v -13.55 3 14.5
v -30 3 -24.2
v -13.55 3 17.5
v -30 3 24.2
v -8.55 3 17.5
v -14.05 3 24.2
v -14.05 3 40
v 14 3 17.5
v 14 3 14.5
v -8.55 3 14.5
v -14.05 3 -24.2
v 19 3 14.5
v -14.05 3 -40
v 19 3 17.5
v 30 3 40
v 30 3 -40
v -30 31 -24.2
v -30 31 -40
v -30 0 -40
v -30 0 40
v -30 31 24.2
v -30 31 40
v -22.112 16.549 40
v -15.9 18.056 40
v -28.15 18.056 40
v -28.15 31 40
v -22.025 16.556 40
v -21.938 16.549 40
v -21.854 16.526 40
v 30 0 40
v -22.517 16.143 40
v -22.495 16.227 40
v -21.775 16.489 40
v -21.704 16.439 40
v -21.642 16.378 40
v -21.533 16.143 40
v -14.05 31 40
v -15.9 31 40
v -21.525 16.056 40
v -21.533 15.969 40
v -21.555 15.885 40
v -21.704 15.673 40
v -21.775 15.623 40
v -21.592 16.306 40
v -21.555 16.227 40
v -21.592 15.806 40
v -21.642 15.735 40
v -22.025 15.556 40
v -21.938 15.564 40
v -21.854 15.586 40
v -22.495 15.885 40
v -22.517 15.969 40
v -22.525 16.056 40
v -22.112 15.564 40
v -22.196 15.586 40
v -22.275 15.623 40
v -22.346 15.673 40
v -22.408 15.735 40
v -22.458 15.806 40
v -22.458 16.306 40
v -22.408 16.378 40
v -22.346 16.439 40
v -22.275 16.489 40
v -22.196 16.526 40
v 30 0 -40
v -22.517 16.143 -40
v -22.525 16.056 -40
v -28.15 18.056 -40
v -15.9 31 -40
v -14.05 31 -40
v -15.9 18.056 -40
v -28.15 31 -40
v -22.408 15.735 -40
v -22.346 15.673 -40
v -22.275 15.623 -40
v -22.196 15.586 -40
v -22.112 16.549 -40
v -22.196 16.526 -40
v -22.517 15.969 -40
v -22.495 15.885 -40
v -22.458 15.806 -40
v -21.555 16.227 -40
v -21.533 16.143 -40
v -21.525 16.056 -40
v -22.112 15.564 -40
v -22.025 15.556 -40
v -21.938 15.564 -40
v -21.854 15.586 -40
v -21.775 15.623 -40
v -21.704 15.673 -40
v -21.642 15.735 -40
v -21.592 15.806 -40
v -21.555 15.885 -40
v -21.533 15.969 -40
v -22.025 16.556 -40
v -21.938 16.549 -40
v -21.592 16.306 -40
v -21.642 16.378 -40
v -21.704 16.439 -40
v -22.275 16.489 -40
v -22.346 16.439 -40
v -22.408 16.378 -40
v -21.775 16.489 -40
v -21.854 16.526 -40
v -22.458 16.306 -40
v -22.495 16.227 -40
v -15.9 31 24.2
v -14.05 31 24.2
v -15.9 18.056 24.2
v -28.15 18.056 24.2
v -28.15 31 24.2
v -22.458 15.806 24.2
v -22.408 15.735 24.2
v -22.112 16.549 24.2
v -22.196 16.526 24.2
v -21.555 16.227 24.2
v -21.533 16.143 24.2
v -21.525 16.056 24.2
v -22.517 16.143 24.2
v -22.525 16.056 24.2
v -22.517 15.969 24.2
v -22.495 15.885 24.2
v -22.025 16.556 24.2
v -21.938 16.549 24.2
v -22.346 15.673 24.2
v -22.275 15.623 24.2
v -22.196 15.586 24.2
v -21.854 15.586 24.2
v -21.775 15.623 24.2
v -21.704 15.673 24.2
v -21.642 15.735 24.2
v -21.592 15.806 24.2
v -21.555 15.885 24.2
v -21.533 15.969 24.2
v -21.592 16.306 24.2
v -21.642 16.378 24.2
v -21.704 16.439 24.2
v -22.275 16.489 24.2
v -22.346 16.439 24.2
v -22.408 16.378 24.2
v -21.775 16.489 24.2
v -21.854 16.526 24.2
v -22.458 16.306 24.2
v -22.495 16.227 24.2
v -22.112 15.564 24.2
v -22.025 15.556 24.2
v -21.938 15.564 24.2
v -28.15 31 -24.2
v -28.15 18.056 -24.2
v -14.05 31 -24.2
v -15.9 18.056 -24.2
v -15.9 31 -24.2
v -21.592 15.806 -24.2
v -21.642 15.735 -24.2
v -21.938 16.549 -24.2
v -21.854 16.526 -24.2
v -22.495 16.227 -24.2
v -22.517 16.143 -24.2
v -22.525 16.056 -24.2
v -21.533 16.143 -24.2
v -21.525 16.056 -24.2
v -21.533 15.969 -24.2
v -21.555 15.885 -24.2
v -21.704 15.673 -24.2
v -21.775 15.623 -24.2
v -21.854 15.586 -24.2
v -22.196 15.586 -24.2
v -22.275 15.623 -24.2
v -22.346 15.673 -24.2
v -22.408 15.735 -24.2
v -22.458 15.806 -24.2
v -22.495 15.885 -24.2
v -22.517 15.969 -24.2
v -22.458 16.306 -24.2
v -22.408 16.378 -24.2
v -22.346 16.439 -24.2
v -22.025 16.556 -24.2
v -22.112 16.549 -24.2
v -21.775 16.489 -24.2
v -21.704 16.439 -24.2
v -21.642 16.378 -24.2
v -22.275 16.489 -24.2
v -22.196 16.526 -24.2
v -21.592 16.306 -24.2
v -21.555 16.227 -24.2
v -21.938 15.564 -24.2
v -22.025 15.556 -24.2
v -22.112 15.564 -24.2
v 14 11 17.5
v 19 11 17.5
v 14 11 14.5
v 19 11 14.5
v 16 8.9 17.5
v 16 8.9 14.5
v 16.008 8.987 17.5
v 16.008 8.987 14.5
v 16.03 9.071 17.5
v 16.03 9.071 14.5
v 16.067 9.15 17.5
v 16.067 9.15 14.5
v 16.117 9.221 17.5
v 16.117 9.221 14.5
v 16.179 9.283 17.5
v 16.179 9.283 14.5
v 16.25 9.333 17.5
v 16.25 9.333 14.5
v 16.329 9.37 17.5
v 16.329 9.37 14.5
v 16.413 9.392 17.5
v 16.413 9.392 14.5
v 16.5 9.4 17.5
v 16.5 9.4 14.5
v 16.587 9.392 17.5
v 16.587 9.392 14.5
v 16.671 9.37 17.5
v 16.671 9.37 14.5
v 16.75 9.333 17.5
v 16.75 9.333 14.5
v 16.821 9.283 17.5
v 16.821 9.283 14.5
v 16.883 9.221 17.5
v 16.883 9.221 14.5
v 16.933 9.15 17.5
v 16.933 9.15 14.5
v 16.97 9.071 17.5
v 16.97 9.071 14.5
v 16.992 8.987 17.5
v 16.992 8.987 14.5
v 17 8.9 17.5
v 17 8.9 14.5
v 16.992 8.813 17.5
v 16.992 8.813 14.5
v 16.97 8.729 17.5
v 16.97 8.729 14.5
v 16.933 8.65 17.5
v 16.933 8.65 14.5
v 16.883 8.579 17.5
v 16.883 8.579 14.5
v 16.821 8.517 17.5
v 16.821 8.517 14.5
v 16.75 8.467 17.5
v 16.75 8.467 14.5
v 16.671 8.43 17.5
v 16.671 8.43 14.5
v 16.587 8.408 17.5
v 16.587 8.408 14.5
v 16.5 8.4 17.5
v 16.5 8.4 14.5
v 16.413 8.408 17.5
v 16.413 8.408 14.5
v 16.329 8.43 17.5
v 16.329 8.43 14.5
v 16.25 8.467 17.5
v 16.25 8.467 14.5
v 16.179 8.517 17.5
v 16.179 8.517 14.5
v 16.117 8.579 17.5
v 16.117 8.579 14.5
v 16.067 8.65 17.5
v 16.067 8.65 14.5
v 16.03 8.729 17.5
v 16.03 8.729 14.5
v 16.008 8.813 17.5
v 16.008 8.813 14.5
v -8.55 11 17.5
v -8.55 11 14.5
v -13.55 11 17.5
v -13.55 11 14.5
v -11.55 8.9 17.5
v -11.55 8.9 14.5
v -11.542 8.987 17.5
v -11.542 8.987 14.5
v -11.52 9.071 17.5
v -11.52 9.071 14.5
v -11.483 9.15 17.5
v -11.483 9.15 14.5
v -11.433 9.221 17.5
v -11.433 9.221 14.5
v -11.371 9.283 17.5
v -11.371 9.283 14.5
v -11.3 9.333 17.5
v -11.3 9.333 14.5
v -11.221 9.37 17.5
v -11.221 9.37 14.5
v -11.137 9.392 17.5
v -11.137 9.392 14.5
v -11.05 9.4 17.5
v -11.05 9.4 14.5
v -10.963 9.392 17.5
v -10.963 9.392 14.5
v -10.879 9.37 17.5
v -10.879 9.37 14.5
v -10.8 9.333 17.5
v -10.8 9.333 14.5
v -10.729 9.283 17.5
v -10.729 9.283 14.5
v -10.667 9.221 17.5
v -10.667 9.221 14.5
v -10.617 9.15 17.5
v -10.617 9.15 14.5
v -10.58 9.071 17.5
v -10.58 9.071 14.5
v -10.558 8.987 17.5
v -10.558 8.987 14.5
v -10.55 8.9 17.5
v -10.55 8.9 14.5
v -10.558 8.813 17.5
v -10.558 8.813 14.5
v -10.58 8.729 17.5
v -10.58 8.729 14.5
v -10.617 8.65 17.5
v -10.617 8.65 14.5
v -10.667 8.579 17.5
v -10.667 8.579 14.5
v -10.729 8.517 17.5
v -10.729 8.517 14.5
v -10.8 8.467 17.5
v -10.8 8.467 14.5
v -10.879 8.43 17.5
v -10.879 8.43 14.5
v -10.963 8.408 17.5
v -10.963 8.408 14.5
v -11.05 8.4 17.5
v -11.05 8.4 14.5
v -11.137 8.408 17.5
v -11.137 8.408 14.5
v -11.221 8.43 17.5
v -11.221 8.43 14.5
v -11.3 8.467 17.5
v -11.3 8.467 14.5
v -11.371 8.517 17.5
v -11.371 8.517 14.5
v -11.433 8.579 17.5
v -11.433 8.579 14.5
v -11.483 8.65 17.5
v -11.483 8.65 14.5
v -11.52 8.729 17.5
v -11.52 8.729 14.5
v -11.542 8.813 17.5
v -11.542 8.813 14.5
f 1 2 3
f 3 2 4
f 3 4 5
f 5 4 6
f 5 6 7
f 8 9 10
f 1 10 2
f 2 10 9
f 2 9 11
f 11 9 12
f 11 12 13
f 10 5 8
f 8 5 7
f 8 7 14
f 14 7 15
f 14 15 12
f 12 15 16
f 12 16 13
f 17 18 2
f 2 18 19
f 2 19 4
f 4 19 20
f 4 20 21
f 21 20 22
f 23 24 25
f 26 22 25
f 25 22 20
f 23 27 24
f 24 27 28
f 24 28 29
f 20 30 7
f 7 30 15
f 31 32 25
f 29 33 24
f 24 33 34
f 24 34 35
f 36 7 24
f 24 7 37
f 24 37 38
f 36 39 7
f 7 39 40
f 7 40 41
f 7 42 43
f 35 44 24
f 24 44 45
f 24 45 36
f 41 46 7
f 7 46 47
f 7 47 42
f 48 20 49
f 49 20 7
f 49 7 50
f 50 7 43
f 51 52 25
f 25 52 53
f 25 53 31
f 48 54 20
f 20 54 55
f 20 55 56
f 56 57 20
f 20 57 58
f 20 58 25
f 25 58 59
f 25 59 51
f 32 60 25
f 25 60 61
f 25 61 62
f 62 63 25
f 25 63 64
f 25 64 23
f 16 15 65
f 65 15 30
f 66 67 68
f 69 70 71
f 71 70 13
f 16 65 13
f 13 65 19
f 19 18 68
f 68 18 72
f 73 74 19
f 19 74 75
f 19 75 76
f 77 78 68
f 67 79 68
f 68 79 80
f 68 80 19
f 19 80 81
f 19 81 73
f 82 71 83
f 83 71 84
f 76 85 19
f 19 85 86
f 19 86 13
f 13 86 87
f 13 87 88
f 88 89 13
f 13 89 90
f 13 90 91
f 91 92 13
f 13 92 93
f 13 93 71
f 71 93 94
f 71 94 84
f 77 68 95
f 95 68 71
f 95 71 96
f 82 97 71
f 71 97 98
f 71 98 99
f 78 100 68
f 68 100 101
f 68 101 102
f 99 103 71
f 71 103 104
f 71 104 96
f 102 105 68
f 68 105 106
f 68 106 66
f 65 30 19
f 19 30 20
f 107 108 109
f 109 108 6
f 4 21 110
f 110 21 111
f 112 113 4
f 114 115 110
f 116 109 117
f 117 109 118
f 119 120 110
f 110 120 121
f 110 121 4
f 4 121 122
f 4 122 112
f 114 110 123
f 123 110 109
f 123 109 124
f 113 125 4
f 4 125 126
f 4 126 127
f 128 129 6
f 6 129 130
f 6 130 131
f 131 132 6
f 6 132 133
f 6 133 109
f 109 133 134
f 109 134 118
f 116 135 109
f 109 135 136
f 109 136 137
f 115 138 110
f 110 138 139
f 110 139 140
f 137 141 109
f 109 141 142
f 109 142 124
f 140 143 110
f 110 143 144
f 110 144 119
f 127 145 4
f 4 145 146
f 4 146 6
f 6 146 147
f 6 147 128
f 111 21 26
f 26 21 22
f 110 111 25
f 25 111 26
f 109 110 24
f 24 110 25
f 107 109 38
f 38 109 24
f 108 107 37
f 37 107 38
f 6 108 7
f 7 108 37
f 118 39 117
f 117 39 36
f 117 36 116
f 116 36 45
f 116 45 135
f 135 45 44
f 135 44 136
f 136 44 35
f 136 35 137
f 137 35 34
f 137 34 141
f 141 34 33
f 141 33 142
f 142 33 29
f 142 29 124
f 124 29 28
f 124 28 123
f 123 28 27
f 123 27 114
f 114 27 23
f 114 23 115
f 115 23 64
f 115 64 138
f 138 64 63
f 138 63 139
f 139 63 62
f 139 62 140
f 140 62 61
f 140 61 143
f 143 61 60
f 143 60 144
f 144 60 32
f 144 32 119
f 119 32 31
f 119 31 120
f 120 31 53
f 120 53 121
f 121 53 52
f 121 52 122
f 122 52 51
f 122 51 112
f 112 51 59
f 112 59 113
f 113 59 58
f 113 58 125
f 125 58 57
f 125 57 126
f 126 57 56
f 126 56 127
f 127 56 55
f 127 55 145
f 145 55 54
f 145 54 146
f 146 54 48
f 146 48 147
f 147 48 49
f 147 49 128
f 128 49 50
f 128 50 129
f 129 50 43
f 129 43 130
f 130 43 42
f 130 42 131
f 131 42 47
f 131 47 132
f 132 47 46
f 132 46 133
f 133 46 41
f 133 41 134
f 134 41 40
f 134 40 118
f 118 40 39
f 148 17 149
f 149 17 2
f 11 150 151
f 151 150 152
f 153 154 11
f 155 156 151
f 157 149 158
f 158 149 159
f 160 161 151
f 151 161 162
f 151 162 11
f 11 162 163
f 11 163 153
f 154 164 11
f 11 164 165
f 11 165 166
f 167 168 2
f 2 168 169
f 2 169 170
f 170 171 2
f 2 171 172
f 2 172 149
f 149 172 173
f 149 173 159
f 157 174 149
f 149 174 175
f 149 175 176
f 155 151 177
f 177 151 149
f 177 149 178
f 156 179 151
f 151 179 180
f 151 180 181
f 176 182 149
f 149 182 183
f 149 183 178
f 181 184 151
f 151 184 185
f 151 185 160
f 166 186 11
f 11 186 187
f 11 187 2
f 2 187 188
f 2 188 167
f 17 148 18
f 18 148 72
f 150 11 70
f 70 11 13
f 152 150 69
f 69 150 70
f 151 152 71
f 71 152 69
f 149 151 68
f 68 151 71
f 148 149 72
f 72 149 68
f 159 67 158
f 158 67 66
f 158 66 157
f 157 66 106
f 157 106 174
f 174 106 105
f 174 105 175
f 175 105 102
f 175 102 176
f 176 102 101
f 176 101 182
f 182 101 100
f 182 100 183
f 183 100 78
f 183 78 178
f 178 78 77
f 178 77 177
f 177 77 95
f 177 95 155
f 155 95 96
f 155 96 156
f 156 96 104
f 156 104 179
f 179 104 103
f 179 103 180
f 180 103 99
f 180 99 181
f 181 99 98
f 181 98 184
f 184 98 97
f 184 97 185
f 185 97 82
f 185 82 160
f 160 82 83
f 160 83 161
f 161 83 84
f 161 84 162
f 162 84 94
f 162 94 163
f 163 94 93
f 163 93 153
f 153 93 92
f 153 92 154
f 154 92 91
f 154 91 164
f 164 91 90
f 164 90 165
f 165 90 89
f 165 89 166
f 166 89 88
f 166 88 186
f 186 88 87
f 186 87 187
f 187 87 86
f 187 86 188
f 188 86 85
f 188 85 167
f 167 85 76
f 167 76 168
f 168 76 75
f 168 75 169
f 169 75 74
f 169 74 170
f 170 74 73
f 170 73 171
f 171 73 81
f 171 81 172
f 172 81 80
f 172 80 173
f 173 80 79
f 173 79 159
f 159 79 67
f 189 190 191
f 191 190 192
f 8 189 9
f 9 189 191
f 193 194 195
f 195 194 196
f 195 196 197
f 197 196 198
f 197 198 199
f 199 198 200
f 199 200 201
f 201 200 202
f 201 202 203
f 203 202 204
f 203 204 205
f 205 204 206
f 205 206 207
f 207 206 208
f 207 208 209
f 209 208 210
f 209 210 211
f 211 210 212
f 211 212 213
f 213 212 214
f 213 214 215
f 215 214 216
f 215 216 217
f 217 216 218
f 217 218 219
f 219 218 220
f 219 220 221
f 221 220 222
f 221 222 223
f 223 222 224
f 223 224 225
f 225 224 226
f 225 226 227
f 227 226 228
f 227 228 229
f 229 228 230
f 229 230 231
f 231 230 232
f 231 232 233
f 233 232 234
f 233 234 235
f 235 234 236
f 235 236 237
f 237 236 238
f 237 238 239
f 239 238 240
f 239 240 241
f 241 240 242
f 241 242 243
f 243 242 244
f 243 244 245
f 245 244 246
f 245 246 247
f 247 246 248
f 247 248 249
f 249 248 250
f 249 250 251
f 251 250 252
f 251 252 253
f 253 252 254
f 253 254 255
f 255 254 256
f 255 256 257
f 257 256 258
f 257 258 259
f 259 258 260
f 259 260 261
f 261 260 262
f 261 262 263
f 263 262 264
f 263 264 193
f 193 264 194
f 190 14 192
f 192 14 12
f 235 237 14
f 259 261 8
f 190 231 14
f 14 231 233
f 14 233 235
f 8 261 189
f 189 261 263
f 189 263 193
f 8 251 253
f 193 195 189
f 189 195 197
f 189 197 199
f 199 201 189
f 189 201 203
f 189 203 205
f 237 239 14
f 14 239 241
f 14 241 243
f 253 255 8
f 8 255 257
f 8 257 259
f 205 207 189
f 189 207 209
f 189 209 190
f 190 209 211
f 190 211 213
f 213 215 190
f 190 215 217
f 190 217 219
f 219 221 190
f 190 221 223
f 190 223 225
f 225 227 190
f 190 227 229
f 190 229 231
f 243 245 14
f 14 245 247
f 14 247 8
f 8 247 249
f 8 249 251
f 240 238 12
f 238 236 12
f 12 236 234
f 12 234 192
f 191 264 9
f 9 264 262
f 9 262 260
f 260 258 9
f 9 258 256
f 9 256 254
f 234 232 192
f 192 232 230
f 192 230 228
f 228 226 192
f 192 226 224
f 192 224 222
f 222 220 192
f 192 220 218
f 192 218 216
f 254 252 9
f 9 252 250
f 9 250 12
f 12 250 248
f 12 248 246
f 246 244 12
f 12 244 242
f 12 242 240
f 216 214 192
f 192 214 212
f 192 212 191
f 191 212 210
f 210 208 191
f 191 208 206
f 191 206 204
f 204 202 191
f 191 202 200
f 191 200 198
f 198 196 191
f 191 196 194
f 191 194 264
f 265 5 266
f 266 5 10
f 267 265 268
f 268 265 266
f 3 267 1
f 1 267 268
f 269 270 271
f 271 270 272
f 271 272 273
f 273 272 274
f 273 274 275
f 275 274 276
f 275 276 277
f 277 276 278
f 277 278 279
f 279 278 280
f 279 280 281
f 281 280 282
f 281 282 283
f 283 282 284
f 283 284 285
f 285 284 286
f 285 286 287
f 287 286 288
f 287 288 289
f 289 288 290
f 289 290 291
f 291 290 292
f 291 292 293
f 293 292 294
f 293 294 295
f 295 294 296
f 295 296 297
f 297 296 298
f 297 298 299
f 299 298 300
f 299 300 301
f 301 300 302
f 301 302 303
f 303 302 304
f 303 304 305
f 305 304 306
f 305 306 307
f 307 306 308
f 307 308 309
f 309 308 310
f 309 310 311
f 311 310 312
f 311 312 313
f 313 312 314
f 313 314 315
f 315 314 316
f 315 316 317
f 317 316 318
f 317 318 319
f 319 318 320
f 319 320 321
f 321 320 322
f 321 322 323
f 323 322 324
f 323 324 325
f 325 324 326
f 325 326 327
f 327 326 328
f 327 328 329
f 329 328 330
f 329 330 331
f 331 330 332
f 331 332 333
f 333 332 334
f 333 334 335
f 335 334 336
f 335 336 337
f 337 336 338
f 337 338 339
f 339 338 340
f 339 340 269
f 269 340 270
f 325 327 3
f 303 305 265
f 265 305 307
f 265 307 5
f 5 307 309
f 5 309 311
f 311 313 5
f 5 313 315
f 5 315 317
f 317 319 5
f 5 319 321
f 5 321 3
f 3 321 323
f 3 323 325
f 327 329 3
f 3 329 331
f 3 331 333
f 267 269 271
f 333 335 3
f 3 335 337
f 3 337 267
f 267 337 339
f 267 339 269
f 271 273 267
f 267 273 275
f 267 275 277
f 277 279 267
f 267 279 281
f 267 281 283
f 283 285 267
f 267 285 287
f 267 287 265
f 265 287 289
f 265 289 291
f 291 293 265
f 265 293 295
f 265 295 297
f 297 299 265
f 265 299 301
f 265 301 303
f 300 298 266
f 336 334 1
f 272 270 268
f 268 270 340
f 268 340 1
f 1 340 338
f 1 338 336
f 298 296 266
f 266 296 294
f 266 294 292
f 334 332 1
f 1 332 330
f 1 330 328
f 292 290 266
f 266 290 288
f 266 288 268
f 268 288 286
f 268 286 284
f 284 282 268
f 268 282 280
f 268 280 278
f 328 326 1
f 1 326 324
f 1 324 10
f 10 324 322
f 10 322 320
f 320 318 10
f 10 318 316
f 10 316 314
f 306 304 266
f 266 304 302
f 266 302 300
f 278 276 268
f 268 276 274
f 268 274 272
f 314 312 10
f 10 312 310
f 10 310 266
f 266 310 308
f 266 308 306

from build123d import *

# Parameters (mm, degrees)
SKETCH1_W           = 60
SKETCH1_H           = 80
BOSS_EXTRUDE1_DEPTH = 3
BOSS_EXTRUDE2_START = 40
SKETCH3_W           = 12.25
SKETCH3_H           = 15.056176196
SKETCH3_R           = 0.5
SKETCH3_W_2         = 1.85
SKETCH3_H_2         = 28
BOSS_EXTRUDE2_DEPTH = 15.8
BOSS_EXTRUDE3_START = -40
SKETCH3_3_W         = 12.25
SKETCH3_3_H         = 15.056176196
SKETCH3_3_R         = 0.5
SKETCH3_3_W_2       = 1.85
SKETCH3_3_H_2       = 28
BOSS_EXTRUDE3_DEPTH = 15.8
BOSS_EXTRUDE4_START = 14.5
SKETCH4_W           = 5
SKETCH4_H           = 8
SKETCH4_R           = 0.5
BOSS_EXTRUDE4_DEPTH = 3


with BuildPart() as part:
    # Sketch1 → Boss-Extrude1 (new body)
    with BuildSketch(Plane(origin=(0, 0, 0), x_dir=(1, 0, 0), z_dir=(0, 1, 0))):
        Rectangle(SKETCH1_W, SKETCH1_H)
    extrude(amount=BOSS_EXTRUDE1_DEPTH)

    # Sketch3 → Boss-Extrude2 (add)
    with BuildSketch(Plane.XY.offset(BOSS_EXTRUDE2_START)):
        Polygon((-15.9, 18.056176196), (-15.9, 3), (-14.05, 3), (-14.05, 31), (-15.9, 31), align=None)
        with Locations((-22.025, 10.528088098)):
            Rectangle(SKETCH3_W, SKETCH3_H)
        with Locations((-22.025, 16.056176196)):
            Circle(SKETCH3_R, mode=Mode.SUBTRACT)
        with Locations((-29.075, 17)):
            Rectangle(SKETCH3_W_2, SKETCH3_H_2)
    extrude(amount=-BOSS_EXTRUDE2_DEPTH)

    # Sketch3<3> → Boss-Extrude3 (add)
    with BuildSketch(Plane.XY.offset(BOSS_EXTRUDE3_START)):
        Polygon((-15.9, 18.056176196), (-15.9, 3), (-14.05, 3), (-14.05, 31), (-15.9, 31), align=None)
        with Locations((-22.025, 10.528088098)):
            Rectangle(SKETCH3_3_W, SKETCH3_3_H)
        with Locations((-22.025, 16.056176196)):
            Circle(SKETCH3_3_R, mode=Mode.SUBTRACT)
        with Locations((-29.075, 17)):
            Rectangle(SKETCH3_3_W_2, SKETCH3_3_H_2)
    extrude(amount=BOSS_EXTRUDE3_DEPTH)

    # Sketch4 → Boss-Extrude4 (add)
    with BuildSketch(Plane.XY.offset(BOSS_EXTRUDE4_START)):
        with Locations((16.5, 7)):
            Rectangle(SKETCH4_W, SKETCH4_H)
        with Locations((16.5, 8.9)):
            Circle(SKETCH4_R, mode=Mode.SUBTRACT)
        with Locations((-11.05, 7)):
            Rectangle(SKETCH4_W, SKETCH4_H)
        with Locations((-11.05, 8.9)):
            Circle(SKETCH4_R, mode=Mode.SUBTRACT)
    extrude(amount=BOSS_EXTRUDE4_DEPTH)


solid = part.part
